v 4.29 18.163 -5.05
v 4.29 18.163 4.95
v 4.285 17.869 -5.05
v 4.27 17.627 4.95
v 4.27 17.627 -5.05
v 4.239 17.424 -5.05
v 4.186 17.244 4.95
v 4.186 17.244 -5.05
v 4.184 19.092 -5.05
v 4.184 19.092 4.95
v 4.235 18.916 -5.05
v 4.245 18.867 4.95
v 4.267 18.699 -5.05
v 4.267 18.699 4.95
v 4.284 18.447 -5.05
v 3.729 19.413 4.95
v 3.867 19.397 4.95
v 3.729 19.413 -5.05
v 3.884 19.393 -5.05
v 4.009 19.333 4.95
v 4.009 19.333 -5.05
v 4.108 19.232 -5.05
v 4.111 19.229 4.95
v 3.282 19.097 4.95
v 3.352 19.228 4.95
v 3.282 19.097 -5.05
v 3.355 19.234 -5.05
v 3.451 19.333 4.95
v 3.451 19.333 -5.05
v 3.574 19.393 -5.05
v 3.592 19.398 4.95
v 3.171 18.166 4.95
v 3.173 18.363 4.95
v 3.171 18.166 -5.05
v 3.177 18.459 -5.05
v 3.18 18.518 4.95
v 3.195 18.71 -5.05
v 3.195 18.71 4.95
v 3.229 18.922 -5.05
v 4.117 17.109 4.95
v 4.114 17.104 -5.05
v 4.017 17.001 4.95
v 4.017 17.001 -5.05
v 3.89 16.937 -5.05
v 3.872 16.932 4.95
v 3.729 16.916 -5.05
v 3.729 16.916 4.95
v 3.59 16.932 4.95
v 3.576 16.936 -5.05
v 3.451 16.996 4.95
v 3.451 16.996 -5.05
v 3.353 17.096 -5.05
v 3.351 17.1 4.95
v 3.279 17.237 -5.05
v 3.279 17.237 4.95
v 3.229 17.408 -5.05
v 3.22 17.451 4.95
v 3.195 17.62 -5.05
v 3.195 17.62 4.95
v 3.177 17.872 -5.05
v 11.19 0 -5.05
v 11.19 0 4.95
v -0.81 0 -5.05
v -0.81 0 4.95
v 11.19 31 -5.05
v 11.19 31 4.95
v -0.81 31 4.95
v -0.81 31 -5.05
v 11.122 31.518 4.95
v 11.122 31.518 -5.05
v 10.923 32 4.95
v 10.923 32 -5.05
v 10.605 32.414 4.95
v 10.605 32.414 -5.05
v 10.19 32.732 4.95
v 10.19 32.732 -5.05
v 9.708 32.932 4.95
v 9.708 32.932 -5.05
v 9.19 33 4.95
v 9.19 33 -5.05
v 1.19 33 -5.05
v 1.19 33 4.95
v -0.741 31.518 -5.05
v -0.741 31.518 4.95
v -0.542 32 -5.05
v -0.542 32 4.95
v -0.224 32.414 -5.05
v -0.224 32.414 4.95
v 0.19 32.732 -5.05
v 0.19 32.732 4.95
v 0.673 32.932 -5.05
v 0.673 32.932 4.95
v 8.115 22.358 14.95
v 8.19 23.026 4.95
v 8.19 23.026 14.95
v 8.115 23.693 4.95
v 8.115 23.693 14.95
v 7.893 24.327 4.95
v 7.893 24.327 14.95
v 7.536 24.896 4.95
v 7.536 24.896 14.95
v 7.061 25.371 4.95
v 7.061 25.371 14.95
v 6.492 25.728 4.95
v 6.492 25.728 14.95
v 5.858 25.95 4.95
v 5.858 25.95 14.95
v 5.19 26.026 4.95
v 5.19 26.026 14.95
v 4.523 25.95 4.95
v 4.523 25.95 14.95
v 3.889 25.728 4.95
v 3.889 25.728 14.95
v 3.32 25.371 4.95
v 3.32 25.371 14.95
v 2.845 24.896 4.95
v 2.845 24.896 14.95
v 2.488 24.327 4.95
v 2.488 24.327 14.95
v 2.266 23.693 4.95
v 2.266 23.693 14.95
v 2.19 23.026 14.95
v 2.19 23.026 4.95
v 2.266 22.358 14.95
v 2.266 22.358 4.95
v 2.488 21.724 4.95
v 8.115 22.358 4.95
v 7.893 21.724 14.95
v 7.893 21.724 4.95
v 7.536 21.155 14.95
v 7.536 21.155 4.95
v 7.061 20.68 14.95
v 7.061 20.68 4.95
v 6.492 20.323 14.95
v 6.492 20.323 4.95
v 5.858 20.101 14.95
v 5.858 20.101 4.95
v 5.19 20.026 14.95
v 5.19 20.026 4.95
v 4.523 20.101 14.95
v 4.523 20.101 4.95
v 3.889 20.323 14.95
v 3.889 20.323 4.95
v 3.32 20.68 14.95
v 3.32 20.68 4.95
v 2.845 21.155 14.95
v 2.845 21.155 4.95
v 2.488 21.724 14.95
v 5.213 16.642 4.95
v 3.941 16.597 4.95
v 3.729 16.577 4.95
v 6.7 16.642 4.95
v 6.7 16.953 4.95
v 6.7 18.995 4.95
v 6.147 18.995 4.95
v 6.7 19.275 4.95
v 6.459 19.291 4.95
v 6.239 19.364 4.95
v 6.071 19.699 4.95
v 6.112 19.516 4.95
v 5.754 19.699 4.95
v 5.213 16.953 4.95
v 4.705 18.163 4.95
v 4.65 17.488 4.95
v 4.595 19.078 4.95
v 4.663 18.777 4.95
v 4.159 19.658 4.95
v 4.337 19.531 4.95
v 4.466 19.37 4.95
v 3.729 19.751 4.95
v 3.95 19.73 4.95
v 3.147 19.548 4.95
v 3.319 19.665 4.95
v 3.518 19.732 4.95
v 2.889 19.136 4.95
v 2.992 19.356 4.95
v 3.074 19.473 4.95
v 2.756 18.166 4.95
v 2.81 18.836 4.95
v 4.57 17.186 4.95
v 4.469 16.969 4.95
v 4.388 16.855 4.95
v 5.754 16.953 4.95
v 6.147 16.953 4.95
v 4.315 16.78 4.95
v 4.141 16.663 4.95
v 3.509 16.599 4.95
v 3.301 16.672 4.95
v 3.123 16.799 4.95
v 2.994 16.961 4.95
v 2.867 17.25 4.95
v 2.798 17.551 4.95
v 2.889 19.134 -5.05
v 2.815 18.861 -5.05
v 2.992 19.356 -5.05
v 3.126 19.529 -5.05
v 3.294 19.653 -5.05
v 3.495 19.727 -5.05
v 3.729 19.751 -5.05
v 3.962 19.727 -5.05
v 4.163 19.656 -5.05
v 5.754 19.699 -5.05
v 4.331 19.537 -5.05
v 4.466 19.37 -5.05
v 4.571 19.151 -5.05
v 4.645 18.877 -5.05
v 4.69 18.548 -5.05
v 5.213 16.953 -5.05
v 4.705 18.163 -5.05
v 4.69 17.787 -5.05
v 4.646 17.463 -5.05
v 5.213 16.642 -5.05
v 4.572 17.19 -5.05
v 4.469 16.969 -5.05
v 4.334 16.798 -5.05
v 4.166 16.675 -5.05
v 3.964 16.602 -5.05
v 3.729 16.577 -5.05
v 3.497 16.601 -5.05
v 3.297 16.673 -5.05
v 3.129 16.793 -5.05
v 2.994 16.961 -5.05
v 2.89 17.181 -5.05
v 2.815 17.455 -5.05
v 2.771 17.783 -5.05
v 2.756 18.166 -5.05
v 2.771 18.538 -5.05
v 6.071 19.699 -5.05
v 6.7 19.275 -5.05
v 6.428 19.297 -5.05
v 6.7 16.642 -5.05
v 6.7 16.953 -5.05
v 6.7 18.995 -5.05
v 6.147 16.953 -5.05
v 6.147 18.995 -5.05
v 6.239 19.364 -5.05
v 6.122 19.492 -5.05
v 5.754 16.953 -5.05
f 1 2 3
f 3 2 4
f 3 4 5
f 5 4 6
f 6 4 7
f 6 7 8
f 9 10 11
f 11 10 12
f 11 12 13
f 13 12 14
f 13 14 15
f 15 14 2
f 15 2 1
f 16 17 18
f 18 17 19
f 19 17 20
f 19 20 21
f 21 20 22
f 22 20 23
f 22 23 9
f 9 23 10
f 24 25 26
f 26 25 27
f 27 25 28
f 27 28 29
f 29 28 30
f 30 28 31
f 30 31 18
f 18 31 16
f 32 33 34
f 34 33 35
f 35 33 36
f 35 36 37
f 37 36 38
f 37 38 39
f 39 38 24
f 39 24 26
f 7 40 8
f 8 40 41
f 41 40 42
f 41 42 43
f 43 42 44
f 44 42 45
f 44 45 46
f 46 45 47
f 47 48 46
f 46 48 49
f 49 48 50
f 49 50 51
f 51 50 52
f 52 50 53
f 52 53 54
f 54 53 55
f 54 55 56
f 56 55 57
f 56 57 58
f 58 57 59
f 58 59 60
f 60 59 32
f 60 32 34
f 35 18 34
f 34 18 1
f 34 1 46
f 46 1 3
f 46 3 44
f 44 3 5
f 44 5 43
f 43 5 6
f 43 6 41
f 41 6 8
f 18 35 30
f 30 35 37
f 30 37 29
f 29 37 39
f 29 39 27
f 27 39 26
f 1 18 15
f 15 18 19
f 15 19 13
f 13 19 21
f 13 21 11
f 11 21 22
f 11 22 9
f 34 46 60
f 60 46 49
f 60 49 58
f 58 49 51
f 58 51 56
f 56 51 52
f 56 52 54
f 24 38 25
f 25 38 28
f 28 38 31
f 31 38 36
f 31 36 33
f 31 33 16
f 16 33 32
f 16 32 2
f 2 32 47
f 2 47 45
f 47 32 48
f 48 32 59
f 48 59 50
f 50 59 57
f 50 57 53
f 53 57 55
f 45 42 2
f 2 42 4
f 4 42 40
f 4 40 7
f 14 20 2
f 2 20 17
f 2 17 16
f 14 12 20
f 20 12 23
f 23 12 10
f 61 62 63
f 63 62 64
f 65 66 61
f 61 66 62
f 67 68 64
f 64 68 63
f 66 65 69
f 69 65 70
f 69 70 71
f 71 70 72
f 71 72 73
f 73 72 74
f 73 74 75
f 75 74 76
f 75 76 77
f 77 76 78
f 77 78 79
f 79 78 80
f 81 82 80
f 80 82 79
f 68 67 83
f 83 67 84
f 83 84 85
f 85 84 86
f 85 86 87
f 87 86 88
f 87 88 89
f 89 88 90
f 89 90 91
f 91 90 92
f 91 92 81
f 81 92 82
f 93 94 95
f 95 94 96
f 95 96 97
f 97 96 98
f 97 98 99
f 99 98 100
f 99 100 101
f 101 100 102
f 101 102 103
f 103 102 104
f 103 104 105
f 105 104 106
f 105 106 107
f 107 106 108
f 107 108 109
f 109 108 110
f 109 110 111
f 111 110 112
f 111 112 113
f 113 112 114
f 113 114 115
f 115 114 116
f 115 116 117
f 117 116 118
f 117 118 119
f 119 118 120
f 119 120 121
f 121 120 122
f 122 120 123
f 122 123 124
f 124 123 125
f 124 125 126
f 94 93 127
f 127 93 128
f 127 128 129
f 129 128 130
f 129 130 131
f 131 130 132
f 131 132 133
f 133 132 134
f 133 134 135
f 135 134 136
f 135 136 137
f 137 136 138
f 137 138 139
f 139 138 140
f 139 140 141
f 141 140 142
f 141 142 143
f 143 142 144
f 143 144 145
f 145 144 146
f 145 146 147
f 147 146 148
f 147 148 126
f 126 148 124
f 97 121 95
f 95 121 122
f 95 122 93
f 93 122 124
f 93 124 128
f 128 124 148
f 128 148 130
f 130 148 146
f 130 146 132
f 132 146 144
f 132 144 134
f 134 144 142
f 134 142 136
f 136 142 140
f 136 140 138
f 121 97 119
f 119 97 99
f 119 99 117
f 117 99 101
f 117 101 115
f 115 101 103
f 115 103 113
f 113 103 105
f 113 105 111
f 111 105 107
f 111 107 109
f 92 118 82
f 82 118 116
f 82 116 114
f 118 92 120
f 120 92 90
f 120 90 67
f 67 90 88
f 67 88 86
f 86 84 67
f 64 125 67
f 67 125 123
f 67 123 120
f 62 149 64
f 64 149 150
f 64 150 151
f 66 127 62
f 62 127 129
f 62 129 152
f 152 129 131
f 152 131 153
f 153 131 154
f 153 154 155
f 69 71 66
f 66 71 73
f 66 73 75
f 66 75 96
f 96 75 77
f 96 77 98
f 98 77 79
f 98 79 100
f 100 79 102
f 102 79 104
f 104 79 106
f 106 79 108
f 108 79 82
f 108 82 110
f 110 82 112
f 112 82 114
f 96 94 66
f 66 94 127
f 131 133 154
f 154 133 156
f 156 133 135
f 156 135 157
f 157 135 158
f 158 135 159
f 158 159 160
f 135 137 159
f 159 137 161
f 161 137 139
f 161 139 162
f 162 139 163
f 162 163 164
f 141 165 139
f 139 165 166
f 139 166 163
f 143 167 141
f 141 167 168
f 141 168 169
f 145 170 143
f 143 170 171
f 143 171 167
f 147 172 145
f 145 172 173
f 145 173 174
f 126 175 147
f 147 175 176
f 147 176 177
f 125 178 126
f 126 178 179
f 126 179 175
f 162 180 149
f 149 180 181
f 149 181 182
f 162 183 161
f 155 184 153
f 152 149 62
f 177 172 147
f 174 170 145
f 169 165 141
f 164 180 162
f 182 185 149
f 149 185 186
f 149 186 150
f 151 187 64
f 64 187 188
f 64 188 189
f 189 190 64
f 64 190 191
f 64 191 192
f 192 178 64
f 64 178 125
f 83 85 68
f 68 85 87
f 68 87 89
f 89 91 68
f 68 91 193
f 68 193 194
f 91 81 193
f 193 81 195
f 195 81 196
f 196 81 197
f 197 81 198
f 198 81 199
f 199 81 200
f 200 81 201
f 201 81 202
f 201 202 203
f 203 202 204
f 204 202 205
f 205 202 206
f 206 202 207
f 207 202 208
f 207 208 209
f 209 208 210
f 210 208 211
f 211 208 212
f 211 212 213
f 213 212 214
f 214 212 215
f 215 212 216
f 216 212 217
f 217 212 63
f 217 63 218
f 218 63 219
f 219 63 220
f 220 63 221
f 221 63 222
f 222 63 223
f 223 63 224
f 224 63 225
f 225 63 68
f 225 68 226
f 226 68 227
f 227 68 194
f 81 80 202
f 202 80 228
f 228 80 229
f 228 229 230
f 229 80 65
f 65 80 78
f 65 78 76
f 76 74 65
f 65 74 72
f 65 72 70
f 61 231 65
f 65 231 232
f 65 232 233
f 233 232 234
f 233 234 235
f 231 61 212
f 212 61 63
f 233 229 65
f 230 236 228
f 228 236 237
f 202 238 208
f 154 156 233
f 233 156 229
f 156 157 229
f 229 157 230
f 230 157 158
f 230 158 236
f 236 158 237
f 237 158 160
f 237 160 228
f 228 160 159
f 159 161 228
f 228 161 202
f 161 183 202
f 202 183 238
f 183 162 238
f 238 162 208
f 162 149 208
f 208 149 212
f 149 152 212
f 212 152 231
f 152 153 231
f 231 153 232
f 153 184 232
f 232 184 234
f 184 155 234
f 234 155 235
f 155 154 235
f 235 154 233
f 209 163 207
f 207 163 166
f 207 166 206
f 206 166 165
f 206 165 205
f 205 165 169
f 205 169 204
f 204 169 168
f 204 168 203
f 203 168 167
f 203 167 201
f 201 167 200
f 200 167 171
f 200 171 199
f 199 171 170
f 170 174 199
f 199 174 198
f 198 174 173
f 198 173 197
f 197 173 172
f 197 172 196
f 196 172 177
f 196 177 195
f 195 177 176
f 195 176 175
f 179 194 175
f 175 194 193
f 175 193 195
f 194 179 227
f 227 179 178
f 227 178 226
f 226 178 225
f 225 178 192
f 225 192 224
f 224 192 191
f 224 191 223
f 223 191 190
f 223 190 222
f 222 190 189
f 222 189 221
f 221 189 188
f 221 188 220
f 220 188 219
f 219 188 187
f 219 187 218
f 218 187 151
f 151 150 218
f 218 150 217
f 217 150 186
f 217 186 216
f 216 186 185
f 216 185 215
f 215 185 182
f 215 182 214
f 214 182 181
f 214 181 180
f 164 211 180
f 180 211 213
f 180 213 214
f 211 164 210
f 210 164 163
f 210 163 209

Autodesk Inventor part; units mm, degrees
ref_plane "YZ Plane" through (0, 0, 0) normal (1, 0, 0) x (0, 1, 0)
ref_plane "XZ Plane" through (0, 0, 0) normal (0, 1, 0) x (-1, 0, 0)
ref_plane "XY Plane" through (0, 0, 0) normal (0, 0, 1) x (1, 0, 0)
sketch "Sketch1" plane through (0, 0, 0) normal (0, 1, 0) x (-1, 0, 0)
  line L0 (0.8095, 4.9498) -> (-11.1905, 4.9498)
  line L1 (-11.1905, 4.9498) -> (-11.1905, -5.0502)
  line L2 (-11.1905, -5.0502) -> (0.8095, -5.0502)
  line L3 (0.8095, -5.0502) -> (0.8095, 4.9498)
  point P0 (0, 0)
  dimension "d0" = 10
  dimension "d1" = 12
extrude "Extrusion1" add sketch "Sketch1" along normal blind 33
fillet "Fillet1" radius 2 1 edges at (11.1905, 33, -0.0502)
fillet "Fillet2" radius 2 1 edges at (-0.8095, 33, -0.0502)
sketch "Sketch2" plane through (-0.8095, 0, 4.9498) normal (0, 0, 1) x (1, 0, 0)
  circle A0 centre (6, 23.0256) radius 3
  line L0 (0, 0) -> (0, 31) projected
  point P0 (0.8095, 0)
  dimension "d6" = 6
  dimension "d7" = 6
extrude "Extrusion2" add sketch "Sketch2" along normal blind 20
sketch "Sketch3" plane through (5.1905, 23.0256, 24.9498) normal (0, 0, 1) x (1, 0, 0)
  circle A0 centre (0, 0) radius 3
  point P0 (-5.1905, -23.0256)
extrude "Extrusion3" cut sketch "Sketch3" against normal blind 10
sketch "Sketch4" plane through (11.1905, 0, -5.0502) normal (0, 0, -1) x (-1, 0, 0)
  line L0 (10.9572, 30.4948) -> (1.3526, 30.4948)
  line L1 (1.3526, 30.4948) -> (1.3526, 3.7115)
  line L2 (1.3526, 3.7115) -> (10.9572, 3.7115)
  line L3 (10.9572, 3.7115) -> (10.9572, 30.4948)
  line L4 (4.0281, 19.7513) -> (8.6026, 19.7513) construction
  line L5 (8.6026, 19.7513) -> (8.6026, 16.5774) construction
  line L6 (8.6026, 16.5774) -> (4.0281, 16.5774) construction
  line L7 (4.0281, 16.5774) -> (4.0281, 19.7513) construction
  line L8 (5.977, 16.6416) -> (4.49, 16.6416)
  line L9 (4.49, 16.6416) -> (4.49, 16.9528)
  line L10 (4.49, 16.9528) -> (5.0433, 16.9528)
  line L11 (5.0433, 16.9528) -> (5.0433, 18.9955)
  line L12 (5.0433, 18.9955) -> (4.49, 18.9955)
  line L13 (4.49, 18.9955) -> (4.49, 19.2746)
  spline S0 degree 2 poles (4.49, 19.2746) (4.8037, 19.2746) (5.1001, 19.4524) (5.1199, 19.6995) knots 0 0 0 1 2 2 2
  line L14 (5.1199, 19.6995) -> (5.4361, 19.6995)
  line L15 (5.4361, 19.6995) -> (5.4361, 16.9528)
  line L16 (5.4361, 16.9528) -> (5.977, 16.9528)
  line L17 (5.977, 16.9528) -> (5.977, 16.6416)
  spline S1 degree 2 poles (8.4347, 18.1656) (8.4347, 17.3455) (7.9579, 16.5774) (7.4615, 16.5774) knots 0 0 0 1 2 2 2
  spline S2 degree 2 poles (7.4615, 16.5774) (6.9576, 16.5774) (6.4858, 17.3603) (6.4858, 18.1631) knots 0 0 0 1 2 2 2
  spline S3 degree 2 poles (6.4858, 18.1631) (6.4858, 18.9881) (6.9625, 19.7513) (7.4615, 19.7513) knots 0 0 0 1 2 2 2
  spline S4 degree 2 poles (7.4615, 19.7513) (7.9629, 19.7513) (8.4347, 18.9609) (8.4347, 18.1656) knots 0 0 0 1 2 2 2
  spline S5 degree 2 poles (7.911, 17.2368) (7.9703, 17.3875) (8.0197, 17.8519) (8.0197, 18.1656) knots 0 0 0 1 2 2 2
  spline S6 degree 2 poles (8.0197, 18.1656) (8.0197, 18.4793) (7.9703, 18.9412) (7.9085, 19.0968) knots 0 0 0 1 2 2 2
  spline S7 degree 2 poles (7.9085, 19.0968) (7.8468, 19.2524) (7.6319, 19.4129) (7.4615, 19.4129) knots 0 0 0 1 2 2 2
  spline S8 degree 2 poles (7.4615, 19.4129) (7.291, 19.4129) (7.0712, 19.2524) (7.007, 19.0918) knots 0 0 0 1 2 2 2
  spline S9 degree 2 poles (7.007, 19.0918) (6.9452, 18.9362) (6.9008, 18.462) (6.9008, 18.1631) knots 0 0 0 1 2 2 2
  spline S10 degree 2 poles (6.9008, 18.1631) (6.9008, 17.842) (6.9403, 17.4122) (7.0045, 17.2443) knots 0 0 0 1 2 2 2
  spline S11 degree 2 poles (7.0045, 17.2443) (7.0638, 17.0862) (7.2836, 16.9157) (7.4615, 16.9157) knots 0 0 0 1 2 2 2
  spline S12 degree 2 poles (7.4615, 16.9157) (7.6294, 16.9157) (7.8493, 17.0763) (7.911, 17.2368) knots 0 0 0 1 2 2 2
  point P0 (11.1905, 0)
extrude "Extrusion4" cut sketch "Sketch4" against normal blind 20 contours L8 L9 L10 L11 L12 L13 S0 L14 L15 L16 L17 | S1 S2 S3 S4
properties part number "fengmingplayerleg"
